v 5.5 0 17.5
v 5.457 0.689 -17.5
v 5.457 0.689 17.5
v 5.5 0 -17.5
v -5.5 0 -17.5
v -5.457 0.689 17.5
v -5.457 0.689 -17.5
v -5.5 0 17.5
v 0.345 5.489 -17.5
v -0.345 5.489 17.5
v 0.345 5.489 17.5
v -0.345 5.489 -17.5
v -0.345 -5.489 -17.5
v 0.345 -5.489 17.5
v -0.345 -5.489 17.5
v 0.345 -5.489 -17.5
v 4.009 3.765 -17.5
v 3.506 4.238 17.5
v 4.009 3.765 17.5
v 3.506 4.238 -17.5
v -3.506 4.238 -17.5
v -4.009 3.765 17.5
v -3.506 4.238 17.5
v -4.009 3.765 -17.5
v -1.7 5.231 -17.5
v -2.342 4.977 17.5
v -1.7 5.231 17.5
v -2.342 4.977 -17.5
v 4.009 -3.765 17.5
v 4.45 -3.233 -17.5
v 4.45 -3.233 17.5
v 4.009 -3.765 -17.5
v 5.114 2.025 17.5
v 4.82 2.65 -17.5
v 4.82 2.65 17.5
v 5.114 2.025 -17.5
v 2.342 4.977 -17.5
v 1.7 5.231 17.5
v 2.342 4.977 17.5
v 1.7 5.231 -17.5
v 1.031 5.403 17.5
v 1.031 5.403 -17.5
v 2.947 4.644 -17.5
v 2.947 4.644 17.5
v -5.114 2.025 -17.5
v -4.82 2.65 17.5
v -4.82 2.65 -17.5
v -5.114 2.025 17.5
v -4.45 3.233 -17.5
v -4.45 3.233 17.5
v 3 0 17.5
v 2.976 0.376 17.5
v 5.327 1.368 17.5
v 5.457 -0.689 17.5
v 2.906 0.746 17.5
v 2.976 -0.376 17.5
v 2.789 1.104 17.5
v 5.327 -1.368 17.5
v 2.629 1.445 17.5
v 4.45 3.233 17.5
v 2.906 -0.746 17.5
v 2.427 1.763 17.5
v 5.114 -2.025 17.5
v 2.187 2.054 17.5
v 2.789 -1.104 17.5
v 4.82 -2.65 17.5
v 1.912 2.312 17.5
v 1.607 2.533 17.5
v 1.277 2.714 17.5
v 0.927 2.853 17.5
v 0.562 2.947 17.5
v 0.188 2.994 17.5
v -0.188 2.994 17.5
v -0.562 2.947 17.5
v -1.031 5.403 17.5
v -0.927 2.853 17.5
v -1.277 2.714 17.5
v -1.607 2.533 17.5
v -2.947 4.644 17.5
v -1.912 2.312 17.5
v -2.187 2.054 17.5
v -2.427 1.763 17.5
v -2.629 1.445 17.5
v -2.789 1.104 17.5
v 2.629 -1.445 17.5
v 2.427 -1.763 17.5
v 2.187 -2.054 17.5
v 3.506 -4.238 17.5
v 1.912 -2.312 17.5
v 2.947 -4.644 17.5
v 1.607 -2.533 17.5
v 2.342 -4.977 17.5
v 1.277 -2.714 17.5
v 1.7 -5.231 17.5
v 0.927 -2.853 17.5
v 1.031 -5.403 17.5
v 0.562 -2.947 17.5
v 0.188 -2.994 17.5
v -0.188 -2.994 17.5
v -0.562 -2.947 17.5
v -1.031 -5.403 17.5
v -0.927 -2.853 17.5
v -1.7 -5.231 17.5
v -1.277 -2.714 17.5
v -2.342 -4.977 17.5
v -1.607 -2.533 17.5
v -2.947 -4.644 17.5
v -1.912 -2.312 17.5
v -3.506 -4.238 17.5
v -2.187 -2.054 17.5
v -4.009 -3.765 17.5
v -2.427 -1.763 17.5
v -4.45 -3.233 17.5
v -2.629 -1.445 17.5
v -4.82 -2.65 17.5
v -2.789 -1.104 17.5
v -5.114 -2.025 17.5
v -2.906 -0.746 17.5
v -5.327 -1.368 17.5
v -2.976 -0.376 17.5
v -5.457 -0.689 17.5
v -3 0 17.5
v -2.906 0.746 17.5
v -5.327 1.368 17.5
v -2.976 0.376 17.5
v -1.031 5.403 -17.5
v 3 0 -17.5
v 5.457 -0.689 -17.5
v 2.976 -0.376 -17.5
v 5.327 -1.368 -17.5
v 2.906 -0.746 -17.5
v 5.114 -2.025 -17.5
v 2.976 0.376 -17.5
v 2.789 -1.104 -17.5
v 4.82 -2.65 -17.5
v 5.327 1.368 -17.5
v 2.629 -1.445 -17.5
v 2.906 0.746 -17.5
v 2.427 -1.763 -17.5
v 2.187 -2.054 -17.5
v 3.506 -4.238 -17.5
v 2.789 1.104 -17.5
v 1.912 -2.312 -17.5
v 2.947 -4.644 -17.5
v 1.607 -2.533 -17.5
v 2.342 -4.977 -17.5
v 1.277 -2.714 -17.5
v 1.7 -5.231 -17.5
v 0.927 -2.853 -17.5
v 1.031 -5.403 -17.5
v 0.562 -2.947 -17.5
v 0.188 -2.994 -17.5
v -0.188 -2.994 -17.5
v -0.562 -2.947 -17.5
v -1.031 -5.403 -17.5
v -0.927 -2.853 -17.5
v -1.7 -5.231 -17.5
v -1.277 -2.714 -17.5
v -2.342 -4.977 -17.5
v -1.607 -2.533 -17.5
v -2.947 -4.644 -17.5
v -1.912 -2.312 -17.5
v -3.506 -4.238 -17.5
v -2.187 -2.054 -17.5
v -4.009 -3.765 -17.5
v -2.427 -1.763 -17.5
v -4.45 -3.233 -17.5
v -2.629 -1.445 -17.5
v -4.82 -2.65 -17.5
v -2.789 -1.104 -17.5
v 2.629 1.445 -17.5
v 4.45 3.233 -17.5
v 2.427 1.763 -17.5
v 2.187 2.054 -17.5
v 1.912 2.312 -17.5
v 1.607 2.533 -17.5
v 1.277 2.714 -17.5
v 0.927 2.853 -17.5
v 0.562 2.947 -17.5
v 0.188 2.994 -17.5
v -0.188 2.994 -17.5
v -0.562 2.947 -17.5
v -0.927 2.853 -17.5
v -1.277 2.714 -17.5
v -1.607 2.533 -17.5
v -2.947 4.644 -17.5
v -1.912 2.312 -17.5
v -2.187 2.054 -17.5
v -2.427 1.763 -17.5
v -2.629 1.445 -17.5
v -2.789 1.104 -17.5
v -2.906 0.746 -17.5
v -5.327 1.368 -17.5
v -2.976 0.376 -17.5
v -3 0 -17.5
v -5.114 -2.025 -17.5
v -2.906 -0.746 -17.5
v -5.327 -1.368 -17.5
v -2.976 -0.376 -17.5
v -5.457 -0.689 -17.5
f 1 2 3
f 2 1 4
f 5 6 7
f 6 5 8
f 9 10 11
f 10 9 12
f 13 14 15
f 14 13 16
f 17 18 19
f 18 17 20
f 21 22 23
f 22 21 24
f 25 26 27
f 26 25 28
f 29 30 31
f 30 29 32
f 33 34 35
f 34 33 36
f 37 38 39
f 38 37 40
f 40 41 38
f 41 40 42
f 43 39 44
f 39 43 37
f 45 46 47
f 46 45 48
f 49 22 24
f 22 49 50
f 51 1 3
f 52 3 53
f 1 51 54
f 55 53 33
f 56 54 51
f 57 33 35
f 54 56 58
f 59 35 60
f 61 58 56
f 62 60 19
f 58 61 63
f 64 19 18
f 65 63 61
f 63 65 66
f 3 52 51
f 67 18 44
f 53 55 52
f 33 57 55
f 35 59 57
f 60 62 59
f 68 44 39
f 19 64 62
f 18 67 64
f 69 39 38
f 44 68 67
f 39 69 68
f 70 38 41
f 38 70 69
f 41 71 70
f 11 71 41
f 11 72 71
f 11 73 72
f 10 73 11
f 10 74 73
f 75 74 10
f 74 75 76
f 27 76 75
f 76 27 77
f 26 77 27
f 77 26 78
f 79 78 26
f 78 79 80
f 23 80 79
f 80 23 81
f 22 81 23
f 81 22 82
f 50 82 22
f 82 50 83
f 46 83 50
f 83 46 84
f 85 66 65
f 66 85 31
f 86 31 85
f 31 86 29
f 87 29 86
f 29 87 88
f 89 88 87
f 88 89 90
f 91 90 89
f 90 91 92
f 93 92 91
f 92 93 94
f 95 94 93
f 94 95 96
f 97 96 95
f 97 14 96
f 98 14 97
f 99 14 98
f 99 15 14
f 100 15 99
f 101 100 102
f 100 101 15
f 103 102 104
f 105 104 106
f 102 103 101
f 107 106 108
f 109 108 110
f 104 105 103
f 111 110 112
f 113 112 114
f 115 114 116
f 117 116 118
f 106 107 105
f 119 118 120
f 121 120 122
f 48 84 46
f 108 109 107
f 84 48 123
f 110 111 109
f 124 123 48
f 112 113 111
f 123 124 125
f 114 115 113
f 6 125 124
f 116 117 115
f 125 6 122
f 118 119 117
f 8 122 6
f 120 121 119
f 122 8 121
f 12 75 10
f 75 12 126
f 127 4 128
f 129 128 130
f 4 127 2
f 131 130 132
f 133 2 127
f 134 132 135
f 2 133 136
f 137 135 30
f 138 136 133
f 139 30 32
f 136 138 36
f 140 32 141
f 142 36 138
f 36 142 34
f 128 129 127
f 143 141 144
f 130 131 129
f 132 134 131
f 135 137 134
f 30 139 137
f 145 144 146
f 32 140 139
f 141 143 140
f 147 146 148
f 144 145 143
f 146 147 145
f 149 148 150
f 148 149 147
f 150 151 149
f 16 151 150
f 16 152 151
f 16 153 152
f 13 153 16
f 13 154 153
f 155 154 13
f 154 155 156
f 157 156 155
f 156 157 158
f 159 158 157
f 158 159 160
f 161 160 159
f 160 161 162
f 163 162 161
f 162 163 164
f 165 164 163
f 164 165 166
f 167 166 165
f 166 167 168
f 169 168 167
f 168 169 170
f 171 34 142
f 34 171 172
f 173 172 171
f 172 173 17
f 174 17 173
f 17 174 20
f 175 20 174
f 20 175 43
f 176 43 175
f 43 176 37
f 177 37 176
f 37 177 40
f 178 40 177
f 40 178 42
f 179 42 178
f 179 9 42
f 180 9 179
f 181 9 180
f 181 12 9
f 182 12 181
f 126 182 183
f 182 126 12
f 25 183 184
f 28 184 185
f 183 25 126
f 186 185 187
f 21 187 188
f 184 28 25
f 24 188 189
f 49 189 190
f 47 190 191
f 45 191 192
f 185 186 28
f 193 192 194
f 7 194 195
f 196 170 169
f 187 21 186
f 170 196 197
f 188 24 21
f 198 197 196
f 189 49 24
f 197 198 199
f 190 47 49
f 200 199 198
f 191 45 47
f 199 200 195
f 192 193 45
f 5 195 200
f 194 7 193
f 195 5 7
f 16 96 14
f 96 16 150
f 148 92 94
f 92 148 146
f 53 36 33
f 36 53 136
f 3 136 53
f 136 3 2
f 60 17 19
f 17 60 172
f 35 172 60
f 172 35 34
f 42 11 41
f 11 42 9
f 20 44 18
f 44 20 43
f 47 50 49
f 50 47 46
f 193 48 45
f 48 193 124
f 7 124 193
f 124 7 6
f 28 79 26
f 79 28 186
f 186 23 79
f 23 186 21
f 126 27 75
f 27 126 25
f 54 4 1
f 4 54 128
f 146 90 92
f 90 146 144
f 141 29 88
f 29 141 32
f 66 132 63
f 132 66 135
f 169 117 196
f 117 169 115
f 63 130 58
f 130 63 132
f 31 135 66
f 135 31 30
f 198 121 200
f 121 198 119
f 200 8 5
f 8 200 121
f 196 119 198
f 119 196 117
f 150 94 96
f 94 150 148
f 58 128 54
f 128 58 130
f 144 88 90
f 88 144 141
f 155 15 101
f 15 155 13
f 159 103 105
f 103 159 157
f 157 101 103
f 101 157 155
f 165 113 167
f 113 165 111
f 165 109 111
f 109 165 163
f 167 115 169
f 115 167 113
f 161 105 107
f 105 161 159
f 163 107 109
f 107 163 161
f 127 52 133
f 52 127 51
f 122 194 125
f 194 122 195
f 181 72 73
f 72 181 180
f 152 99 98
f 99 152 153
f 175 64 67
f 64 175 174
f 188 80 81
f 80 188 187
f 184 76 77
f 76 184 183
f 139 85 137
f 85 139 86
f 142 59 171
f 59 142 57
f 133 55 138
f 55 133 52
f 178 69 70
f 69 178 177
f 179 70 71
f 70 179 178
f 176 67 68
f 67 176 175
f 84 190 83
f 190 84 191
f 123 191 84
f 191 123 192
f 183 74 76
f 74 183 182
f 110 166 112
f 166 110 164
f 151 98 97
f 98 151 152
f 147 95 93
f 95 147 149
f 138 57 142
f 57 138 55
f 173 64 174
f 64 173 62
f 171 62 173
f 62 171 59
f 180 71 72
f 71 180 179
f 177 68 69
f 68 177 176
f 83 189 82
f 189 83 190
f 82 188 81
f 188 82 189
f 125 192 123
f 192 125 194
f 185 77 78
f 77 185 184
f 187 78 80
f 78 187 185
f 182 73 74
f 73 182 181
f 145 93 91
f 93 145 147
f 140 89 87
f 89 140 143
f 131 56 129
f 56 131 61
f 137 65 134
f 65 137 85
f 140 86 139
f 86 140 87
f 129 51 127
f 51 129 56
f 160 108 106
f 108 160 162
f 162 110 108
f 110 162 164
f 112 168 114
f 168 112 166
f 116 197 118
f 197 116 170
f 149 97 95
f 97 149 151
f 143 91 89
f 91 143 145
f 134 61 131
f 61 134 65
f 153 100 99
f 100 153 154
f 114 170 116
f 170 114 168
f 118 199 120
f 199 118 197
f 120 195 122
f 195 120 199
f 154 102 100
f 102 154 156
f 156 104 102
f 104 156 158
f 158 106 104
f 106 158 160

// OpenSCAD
$fn = 50;


difference() {
	union() {
		translate(v = [0, 0, -17.5000000000]) {
			cylinder(h = 35, r = 5.5000000000);
		}
	}
	union() {
		translate(v = [0, 0, -100.0000000000]) {
			cylinder(h = 200, r = 3);
		}
	}
}
